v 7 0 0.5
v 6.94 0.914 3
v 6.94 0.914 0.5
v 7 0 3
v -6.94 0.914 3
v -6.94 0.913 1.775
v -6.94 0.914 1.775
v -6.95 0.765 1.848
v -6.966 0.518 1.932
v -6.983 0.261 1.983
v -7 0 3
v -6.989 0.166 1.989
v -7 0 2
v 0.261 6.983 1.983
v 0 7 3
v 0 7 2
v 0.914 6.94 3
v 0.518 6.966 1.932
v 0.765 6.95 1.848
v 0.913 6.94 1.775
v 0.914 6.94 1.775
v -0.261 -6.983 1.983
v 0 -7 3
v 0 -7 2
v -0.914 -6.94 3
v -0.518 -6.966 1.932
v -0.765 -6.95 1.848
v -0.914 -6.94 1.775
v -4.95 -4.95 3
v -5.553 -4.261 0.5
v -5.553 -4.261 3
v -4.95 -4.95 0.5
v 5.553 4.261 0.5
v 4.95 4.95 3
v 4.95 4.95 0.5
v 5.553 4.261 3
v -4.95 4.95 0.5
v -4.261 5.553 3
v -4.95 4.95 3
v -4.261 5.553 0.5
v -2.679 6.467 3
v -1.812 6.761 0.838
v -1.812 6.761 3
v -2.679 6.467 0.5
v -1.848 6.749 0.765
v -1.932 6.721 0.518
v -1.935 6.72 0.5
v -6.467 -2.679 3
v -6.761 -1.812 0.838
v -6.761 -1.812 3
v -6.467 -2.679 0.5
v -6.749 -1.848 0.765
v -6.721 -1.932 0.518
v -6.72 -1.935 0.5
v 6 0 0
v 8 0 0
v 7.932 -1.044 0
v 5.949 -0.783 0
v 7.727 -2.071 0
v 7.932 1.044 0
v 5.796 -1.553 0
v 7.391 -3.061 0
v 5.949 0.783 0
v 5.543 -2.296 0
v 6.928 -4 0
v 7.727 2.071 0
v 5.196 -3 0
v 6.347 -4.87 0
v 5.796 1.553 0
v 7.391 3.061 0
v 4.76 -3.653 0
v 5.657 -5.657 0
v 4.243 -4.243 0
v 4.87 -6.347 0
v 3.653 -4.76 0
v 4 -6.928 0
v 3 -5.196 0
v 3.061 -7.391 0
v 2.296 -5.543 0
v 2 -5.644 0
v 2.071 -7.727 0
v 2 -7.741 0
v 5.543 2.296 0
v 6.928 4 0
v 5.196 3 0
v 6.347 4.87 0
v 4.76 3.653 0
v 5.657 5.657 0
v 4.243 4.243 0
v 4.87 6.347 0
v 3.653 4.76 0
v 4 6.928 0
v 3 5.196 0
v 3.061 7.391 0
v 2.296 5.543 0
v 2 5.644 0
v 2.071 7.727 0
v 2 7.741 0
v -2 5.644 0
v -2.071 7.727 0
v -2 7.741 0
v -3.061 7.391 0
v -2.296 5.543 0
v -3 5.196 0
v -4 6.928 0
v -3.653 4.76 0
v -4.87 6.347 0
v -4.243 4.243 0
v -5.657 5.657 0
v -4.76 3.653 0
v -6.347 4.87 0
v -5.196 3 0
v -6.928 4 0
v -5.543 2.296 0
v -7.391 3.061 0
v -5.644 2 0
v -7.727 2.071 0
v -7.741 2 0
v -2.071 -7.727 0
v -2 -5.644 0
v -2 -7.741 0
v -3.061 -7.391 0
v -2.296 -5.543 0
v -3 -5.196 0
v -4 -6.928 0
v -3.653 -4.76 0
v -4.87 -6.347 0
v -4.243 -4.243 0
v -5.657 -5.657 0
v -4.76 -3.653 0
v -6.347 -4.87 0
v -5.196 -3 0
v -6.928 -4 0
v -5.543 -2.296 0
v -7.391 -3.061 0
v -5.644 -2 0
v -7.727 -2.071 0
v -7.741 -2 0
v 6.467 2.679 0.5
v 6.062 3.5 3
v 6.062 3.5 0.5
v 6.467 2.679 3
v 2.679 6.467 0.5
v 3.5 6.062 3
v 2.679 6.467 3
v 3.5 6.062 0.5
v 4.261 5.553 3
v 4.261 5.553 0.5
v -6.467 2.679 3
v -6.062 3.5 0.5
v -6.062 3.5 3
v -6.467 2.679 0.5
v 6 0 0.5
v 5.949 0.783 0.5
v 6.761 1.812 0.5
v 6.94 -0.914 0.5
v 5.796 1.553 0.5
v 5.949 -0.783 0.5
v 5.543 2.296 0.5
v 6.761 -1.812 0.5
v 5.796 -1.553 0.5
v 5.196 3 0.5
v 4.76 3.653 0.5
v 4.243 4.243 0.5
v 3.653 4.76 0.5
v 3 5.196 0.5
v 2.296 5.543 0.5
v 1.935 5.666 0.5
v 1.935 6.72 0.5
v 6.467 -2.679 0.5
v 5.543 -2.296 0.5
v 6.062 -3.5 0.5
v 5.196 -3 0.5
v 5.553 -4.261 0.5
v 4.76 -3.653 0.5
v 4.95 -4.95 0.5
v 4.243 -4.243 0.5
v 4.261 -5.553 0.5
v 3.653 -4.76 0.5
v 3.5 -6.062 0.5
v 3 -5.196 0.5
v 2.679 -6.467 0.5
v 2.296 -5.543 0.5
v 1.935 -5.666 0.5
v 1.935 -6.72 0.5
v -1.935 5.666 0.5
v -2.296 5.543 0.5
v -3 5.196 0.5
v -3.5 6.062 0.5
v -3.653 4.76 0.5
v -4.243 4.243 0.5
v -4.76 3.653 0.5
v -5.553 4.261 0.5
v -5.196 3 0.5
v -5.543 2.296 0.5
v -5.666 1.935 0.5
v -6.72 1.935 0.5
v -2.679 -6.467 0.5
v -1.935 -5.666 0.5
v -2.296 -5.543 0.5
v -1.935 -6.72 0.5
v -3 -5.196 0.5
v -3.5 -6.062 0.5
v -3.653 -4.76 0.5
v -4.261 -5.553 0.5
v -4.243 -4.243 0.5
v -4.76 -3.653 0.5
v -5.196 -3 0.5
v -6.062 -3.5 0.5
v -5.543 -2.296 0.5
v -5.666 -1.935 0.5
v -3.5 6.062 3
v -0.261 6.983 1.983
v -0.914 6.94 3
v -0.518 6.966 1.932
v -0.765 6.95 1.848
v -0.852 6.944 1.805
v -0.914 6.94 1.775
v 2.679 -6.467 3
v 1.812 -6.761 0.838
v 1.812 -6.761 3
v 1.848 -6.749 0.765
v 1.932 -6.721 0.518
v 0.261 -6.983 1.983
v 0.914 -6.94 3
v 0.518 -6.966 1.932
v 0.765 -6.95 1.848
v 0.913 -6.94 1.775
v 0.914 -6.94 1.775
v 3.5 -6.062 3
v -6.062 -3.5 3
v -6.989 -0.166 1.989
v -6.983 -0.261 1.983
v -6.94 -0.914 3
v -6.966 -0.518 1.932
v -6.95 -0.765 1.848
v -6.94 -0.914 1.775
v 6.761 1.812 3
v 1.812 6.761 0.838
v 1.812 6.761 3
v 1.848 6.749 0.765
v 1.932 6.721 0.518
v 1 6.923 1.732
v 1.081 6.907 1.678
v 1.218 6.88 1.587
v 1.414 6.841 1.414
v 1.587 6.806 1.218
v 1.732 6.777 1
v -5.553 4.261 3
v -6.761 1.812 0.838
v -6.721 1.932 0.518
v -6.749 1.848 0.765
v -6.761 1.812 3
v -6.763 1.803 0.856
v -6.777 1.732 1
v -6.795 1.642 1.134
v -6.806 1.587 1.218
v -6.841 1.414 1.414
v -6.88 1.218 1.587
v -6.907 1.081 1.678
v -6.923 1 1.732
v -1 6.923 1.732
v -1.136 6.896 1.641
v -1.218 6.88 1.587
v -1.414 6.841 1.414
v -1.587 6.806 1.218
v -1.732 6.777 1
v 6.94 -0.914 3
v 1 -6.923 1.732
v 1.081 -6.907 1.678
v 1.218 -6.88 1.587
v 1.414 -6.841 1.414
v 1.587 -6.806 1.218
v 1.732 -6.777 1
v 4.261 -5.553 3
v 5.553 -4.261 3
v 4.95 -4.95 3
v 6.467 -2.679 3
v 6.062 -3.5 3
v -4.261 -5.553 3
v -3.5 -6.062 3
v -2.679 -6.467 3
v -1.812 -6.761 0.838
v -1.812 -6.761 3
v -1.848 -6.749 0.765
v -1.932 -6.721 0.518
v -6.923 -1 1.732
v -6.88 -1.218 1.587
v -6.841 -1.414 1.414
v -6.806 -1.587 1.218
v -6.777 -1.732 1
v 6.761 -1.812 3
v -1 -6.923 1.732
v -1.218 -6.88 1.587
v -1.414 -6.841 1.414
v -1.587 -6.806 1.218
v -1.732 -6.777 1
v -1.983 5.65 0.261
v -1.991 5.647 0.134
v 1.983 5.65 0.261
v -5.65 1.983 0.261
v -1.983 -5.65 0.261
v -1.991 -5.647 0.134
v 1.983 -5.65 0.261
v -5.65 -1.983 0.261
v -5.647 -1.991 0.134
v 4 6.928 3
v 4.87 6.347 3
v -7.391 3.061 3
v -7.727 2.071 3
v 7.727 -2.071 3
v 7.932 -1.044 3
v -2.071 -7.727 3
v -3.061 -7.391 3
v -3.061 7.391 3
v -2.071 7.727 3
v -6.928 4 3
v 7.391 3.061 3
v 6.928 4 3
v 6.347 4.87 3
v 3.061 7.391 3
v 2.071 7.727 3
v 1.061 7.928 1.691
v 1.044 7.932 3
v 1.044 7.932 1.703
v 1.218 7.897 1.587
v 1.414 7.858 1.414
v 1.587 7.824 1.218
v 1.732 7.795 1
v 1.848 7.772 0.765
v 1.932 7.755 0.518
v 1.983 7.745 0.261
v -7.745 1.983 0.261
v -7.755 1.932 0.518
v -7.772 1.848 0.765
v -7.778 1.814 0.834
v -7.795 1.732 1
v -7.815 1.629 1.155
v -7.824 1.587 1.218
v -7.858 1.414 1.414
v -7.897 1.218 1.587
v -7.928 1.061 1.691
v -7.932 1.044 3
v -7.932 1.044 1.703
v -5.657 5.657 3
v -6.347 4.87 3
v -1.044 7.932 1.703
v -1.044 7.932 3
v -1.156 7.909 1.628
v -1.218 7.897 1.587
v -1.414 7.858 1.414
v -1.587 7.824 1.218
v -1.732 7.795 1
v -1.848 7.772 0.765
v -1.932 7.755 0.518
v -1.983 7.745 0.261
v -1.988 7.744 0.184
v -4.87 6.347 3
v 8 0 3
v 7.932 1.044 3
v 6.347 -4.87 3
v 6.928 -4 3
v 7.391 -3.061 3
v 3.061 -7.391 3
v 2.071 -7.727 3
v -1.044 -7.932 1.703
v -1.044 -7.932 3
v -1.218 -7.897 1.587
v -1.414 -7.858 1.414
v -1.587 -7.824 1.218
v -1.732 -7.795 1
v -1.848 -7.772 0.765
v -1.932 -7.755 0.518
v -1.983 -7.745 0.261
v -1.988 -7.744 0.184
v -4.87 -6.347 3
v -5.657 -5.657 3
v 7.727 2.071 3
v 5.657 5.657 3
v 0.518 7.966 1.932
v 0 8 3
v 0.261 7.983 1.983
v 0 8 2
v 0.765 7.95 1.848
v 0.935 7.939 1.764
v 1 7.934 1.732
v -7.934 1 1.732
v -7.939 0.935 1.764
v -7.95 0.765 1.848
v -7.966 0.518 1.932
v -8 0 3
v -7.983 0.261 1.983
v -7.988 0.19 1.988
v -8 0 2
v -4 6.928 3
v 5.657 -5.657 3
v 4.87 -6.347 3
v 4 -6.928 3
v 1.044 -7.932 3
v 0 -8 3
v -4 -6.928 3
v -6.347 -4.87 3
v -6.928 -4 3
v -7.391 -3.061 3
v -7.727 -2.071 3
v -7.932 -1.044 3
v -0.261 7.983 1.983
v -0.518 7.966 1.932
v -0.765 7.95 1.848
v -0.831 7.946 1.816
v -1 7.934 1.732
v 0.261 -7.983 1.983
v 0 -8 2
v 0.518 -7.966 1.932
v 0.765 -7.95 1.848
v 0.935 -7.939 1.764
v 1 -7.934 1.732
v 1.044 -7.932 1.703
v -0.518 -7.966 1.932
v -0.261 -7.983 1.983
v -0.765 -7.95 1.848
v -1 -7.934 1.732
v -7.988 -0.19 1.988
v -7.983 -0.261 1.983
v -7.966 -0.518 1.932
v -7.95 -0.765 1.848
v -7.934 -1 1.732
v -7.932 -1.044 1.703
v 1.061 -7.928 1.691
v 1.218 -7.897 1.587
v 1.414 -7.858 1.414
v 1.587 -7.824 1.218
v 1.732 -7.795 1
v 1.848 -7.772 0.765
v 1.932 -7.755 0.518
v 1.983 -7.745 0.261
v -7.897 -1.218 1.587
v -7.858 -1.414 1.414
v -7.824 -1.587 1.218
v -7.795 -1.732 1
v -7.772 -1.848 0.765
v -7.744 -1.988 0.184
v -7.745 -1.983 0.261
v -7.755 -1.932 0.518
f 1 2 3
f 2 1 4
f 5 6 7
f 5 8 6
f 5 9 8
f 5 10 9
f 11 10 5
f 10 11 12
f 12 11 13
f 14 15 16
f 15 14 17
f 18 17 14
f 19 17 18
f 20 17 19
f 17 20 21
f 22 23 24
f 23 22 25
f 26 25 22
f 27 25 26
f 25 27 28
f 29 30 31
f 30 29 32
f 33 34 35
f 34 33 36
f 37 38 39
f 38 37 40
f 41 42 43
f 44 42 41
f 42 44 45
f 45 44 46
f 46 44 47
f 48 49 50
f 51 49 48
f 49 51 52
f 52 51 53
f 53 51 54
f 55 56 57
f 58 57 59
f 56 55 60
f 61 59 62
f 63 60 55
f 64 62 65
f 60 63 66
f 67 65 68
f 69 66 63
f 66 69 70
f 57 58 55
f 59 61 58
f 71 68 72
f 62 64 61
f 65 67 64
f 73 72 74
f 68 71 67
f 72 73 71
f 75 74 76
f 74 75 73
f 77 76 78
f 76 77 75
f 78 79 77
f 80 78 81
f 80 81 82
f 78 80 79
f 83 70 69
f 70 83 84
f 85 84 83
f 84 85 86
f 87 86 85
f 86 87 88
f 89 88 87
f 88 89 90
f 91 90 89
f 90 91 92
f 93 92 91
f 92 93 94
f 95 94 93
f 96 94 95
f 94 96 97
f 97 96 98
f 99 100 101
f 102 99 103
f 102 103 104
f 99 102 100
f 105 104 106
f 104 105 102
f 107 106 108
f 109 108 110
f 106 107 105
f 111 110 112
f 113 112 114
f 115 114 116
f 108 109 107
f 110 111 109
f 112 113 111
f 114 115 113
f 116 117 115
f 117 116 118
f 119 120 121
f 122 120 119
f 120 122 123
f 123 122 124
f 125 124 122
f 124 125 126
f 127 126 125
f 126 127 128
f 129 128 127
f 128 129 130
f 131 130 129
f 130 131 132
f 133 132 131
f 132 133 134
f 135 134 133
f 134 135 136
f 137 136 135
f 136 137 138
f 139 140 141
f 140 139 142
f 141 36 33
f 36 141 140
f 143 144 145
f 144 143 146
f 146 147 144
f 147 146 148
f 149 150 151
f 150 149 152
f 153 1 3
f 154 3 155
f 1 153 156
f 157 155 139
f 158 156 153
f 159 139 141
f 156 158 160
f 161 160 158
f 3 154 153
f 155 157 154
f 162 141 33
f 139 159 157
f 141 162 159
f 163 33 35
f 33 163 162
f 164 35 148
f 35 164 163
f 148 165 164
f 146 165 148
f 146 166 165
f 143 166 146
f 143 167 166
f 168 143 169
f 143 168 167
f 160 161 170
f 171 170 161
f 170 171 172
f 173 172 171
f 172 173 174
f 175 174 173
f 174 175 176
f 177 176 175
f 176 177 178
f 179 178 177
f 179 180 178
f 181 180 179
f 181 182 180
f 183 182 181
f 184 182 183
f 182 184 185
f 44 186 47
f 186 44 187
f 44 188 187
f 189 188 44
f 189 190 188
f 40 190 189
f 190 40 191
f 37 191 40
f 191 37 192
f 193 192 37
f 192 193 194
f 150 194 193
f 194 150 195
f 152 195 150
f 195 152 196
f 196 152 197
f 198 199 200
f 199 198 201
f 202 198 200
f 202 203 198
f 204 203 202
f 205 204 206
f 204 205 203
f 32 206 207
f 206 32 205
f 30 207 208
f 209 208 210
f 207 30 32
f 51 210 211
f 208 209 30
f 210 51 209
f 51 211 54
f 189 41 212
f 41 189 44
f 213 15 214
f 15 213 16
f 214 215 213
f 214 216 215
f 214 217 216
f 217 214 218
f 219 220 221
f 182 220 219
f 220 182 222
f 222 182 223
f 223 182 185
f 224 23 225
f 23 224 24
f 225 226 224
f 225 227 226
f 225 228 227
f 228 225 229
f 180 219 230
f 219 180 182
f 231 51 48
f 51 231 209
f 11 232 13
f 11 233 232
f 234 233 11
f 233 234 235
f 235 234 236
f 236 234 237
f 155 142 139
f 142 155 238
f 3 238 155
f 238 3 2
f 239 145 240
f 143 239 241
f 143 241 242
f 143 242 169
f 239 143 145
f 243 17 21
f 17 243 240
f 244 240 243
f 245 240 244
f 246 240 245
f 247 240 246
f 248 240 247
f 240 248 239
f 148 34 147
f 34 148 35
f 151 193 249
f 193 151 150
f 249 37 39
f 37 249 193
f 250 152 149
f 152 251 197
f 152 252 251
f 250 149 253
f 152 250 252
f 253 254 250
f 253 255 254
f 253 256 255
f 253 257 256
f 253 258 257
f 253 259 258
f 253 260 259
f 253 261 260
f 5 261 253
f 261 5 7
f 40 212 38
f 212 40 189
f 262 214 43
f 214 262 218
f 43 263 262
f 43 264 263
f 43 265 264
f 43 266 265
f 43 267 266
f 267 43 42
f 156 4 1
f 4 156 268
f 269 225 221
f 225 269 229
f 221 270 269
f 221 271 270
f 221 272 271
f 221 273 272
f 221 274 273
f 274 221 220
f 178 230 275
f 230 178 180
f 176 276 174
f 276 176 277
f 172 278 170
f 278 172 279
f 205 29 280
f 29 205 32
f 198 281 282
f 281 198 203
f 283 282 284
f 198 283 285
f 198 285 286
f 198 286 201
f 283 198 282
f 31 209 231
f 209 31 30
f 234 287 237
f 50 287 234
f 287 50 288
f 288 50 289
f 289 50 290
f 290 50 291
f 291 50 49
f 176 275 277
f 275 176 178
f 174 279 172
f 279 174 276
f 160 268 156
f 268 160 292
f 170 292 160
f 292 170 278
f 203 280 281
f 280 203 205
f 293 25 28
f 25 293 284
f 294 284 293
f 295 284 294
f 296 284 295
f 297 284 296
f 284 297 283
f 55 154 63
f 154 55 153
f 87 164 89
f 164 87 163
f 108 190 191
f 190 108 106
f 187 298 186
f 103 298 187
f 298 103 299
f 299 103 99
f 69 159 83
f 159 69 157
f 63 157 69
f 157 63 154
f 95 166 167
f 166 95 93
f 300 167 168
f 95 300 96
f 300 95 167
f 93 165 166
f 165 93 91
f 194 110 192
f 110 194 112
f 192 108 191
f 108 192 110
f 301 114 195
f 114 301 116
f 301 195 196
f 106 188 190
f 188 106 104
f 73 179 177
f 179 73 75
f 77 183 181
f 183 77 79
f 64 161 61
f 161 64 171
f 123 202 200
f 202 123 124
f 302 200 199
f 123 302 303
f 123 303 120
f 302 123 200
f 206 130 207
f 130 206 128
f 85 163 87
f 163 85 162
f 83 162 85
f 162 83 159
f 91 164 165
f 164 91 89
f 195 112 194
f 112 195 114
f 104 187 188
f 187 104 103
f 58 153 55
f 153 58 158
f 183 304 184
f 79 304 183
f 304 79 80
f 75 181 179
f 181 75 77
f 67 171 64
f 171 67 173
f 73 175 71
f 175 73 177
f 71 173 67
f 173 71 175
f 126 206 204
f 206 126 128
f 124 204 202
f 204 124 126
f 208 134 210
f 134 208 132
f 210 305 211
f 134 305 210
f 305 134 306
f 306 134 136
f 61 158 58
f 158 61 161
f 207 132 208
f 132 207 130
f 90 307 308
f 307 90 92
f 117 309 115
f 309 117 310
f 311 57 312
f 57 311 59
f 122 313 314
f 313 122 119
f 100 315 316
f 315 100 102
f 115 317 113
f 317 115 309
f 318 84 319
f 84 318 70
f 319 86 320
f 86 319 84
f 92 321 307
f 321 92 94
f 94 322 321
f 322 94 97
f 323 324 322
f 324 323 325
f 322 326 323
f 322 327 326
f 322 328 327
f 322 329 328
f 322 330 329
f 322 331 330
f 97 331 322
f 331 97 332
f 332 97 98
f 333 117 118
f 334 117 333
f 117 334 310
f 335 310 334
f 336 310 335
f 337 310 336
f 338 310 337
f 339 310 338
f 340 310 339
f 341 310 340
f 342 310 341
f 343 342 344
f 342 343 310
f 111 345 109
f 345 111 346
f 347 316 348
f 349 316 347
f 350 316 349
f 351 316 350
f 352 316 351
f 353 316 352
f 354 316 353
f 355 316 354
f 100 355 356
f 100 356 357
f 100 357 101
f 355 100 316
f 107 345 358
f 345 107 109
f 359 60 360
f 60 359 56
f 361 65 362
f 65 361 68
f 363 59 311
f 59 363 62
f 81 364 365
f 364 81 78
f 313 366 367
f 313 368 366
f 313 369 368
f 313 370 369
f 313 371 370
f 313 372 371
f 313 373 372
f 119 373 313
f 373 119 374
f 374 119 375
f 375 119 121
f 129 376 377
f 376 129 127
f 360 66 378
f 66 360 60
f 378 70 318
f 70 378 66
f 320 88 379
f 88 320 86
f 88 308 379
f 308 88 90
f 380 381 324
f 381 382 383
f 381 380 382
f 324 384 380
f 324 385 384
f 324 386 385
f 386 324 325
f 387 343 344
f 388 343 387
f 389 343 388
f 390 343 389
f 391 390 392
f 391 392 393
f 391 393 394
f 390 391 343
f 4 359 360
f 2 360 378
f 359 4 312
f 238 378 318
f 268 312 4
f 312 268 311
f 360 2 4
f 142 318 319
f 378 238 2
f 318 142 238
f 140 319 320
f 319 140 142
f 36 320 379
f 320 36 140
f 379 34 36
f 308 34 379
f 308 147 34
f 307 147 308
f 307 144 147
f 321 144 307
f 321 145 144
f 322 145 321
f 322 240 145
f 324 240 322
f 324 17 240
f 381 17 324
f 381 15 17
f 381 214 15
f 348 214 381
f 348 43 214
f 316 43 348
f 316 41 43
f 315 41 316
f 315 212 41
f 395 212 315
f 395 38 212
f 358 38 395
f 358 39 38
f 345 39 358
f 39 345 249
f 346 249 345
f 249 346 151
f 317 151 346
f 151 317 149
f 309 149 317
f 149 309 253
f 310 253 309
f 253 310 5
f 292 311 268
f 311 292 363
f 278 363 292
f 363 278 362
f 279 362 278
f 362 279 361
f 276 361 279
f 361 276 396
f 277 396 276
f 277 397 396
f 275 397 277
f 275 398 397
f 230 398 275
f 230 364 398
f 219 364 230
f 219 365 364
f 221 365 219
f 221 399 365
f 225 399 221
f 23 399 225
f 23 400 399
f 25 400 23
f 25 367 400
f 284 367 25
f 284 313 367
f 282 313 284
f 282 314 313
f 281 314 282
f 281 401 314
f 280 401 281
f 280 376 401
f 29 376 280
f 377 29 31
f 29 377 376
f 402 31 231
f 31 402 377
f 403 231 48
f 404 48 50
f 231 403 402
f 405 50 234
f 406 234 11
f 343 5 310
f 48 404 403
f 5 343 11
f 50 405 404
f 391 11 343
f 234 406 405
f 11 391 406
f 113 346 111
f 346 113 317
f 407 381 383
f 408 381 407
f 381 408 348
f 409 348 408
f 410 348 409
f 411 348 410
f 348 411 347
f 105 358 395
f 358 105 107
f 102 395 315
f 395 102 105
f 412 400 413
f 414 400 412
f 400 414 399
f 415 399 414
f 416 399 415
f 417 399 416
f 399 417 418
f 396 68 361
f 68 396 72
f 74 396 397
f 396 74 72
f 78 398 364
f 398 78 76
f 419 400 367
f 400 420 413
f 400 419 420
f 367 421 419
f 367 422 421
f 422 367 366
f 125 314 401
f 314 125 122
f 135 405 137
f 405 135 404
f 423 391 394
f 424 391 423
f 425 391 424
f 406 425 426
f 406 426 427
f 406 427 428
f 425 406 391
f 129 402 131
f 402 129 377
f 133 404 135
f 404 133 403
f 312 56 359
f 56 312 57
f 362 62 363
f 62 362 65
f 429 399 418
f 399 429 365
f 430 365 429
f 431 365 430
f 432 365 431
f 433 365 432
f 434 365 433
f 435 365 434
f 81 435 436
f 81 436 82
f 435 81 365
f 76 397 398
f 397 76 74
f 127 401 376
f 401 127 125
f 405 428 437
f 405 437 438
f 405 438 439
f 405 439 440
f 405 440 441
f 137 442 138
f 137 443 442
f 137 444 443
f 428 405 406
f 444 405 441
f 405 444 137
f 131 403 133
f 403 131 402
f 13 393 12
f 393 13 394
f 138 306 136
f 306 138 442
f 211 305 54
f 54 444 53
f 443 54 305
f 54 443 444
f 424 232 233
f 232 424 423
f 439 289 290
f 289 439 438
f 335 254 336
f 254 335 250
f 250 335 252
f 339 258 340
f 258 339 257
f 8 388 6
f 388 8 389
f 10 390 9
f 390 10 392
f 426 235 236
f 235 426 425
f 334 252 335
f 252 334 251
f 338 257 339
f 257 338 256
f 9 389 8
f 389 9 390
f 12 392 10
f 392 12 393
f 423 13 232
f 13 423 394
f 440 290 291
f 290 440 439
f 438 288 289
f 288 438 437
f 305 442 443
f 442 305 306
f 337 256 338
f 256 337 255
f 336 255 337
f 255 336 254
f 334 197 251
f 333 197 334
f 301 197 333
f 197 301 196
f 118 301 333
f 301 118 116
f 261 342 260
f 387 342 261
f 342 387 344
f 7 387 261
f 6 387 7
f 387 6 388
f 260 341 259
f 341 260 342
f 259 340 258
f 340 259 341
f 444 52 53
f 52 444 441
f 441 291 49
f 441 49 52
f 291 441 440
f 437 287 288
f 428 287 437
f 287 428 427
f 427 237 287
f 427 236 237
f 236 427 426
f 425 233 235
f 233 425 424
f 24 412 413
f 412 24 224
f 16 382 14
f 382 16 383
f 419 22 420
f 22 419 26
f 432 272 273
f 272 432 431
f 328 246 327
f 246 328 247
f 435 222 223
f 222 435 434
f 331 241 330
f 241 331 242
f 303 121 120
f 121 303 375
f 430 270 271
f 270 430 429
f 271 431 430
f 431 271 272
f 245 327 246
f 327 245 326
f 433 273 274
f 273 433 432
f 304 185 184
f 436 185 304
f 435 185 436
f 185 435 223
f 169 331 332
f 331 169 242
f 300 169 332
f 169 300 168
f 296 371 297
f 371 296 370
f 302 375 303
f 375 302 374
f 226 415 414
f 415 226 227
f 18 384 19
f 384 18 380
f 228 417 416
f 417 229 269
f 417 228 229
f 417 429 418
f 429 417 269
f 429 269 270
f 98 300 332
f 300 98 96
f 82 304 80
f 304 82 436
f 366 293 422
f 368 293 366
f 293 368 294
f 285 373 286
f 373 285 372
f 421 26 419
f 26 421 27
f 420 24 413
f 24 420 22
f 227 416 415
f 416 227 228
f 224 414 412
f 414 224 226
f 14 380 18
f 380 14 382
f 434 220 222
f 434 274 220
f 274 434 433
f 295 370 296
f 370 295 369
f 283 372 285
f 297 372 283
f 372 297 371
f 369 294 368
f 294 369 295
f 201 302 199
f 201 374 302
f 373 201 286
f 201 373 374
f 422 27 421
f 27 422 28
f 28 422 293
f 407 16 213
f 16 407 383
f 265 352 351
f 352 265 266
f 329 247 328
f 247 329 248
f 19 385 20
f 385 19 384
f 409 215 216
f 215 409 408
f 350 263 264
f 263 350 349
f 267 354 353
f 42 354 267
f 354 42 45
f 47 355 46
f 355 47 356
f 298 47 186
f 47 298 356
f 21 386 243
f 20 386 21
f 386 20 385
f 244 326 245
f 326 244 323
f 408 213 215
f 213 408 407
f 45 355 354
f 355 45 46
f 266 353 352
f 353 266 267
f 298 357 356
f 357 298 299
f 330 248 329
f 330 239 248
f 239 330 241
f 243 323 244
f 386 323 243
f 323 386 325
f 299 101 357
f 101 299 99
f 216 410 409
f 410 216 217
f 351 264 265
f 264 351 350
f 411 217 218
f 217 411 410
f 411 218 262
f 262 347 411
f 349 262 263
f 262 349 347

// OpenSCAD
// file: ../build_environments.scad
// build_environments.scad: modules to build level sections
//

module pool(diameter=10.0, wall_height=2.0, step_width=3.0, connections=[])
{
    difference() {
        union() {
        difference() {
            cylinder(h=0.5,r1=diameter+step_width,r2=diameter+step_width,$fn=48);
            translate([0,0,-0.1])
                cylinder(h=0.7,r1=diameter,r2=diameter,$fn=48);
        }
        difference() {
            cylinder(h=wall_height,r1=diameter+step_width+1.0,r2=diameter+step_width+1.0,$fn=48);
            translate([0,0,-0.1])
                cylinder(h=wall_height+0.2,r1=diameter+step_width,r2=diameter+step_width,$fn=48);
        }
        }
    
        for (c = connections)
        {
            rotate([0,90,0]) {
                angle = atan2(c[1],c[0]);
                rotate([-angle,0,0]) {
                    cylinder(h=diameter+5.0,r1=c[2],r2=c[2],$fn=48);
                }
            }
        }
    }
}

module straight(length=10.0, width=2.0, dy1=0.0, dy2=0.0, dz=0.0)
{
    dims = [0, 0, 0, 0, 0, (dz/length)];
    matrix = [
        [ 1, dims[0], dims[1], 0 ],
        [ dims[2], 1, dims[4], 0 ],
        [ dims[5], dims[3], 1, 0 ],
        [ 0, 0, 0, 1 ]
    ];
    multmatrix(matrix)
    difference() {
        translate([dy1,0,0])
        union() {
            rotate([0,90,0]) {
                difference() {
                    cylinder(h=(length-dy1-dy2),r1=width+1.0,r2=width+1.0,$fn=24);
                    translate([0,0,-0.1])
                        cylinder(h=(length-dy1-dy2+0.2),r1=width,r2=width,$fn=24);
                }
                difference() {
                    cylinder(h=1.0,r1=width+2.0,r2=width+2.0,$fn=24);
                    translate([0,0,-0.1])
                        cylinder(h=1.2,r1=width,r2=width,$fn=24);
                }
                translate([0,0,(length-dy1-dy2)-1.0]) {
                    difference() {
                        cylinder(h=1.0,r1=width+2.0,r2=width+2.0,$fn=24);
                        translate([0,0,-0.1])
                            cylinder(h=1.2,r1=width,r2=width,$fn=24);
                    }
                }
            }
        }
        translate([0,0,-(2*width+4.0)/2])
            cube([3*length,3*length,2*width+4.0],center=true);
    }
}

module curve(p0=[0,0], center=[0,0], dir=1, angle=0.0, width=2.0)
{
    radius = sqrt((p0[0]-center[0])*(p0[0]-center[0]) + (p0[1]-center[1])*(p0[1]-center[1]));
    if (dir == 0) {
        difference() {
            rotate([0,0,-90])
            difference() {
                rotate_extrude(angle = angle, convexity = 10, $fn=32)
                    translate([radius, 0, 0])
                        circle(r = width+1.0,$fn=24);
                rotate([0,0,-1.0])
                    rotate_extrude(angle = angle+2.0, convexity = 10, $fn=32)
                        translate([radius, 0, 0])
                            circle(r = width,$fn=24);
            }
            translate([0,0,-(2*width+4.0)/2])
                cube([5*radius,5*radius,2*width+4.0],center=true);
        }
    }
    else {
        difference() {
            rotate([0,0,90])
            difference() {
                rotate_extrude(angle = -angle, convexity = 10, $fn=32)
                    translate([radius, 0, 0])
                        circle(r = width+1.0,$fn=24);
                rotate([0,0,1.0])
                    rotate_extrude(angle = -angle-2.0, convexity = 10, $fn=32)
                        translate([radius, 0, 0])
                            circle(r = width,$fn=24);
            }
            translate([0,0,-(2*width+4.0)/2])
                cube([5*radius,5*radius,2*width+4.0],center=true);
        }
    }

}

// test pool
//pool(diameter=12.0000, wall_height=3.0000, step_width=3.0000, connections=[[0.0000,-26.0000,2.0000], [23.6074,0.0000,2.0000]]);

// test straight, slope
//straight(length=26.0000, width=2.0000, dy1=11.8322, dy2=6.7082, dz=0.0000);
//straight(length=29.1549, width=12.0000, dy1=0.0000, dy2=0.0000, dz=-15.0000);

// test curve
//curve(p0=[23.6074, 0.0000], center=[23.6074, 5.0000], dir=0, angle=60.1011, width=2.0000);
//curve(p0=[33.6426, 12.4219], center=[37.9771, 9.9295], dir=1, angle=120.4627, width=2.0000);
// main file
use <../build_environments.scad>;
pool(diameter=6.0000, wall_height=3.0000, step_width=1.0000, connections=[[-16.0000,0.0000,2.0000], [0.0000,-16.0000,2.0000], [0.0000,29.2455,2.0000]]);
